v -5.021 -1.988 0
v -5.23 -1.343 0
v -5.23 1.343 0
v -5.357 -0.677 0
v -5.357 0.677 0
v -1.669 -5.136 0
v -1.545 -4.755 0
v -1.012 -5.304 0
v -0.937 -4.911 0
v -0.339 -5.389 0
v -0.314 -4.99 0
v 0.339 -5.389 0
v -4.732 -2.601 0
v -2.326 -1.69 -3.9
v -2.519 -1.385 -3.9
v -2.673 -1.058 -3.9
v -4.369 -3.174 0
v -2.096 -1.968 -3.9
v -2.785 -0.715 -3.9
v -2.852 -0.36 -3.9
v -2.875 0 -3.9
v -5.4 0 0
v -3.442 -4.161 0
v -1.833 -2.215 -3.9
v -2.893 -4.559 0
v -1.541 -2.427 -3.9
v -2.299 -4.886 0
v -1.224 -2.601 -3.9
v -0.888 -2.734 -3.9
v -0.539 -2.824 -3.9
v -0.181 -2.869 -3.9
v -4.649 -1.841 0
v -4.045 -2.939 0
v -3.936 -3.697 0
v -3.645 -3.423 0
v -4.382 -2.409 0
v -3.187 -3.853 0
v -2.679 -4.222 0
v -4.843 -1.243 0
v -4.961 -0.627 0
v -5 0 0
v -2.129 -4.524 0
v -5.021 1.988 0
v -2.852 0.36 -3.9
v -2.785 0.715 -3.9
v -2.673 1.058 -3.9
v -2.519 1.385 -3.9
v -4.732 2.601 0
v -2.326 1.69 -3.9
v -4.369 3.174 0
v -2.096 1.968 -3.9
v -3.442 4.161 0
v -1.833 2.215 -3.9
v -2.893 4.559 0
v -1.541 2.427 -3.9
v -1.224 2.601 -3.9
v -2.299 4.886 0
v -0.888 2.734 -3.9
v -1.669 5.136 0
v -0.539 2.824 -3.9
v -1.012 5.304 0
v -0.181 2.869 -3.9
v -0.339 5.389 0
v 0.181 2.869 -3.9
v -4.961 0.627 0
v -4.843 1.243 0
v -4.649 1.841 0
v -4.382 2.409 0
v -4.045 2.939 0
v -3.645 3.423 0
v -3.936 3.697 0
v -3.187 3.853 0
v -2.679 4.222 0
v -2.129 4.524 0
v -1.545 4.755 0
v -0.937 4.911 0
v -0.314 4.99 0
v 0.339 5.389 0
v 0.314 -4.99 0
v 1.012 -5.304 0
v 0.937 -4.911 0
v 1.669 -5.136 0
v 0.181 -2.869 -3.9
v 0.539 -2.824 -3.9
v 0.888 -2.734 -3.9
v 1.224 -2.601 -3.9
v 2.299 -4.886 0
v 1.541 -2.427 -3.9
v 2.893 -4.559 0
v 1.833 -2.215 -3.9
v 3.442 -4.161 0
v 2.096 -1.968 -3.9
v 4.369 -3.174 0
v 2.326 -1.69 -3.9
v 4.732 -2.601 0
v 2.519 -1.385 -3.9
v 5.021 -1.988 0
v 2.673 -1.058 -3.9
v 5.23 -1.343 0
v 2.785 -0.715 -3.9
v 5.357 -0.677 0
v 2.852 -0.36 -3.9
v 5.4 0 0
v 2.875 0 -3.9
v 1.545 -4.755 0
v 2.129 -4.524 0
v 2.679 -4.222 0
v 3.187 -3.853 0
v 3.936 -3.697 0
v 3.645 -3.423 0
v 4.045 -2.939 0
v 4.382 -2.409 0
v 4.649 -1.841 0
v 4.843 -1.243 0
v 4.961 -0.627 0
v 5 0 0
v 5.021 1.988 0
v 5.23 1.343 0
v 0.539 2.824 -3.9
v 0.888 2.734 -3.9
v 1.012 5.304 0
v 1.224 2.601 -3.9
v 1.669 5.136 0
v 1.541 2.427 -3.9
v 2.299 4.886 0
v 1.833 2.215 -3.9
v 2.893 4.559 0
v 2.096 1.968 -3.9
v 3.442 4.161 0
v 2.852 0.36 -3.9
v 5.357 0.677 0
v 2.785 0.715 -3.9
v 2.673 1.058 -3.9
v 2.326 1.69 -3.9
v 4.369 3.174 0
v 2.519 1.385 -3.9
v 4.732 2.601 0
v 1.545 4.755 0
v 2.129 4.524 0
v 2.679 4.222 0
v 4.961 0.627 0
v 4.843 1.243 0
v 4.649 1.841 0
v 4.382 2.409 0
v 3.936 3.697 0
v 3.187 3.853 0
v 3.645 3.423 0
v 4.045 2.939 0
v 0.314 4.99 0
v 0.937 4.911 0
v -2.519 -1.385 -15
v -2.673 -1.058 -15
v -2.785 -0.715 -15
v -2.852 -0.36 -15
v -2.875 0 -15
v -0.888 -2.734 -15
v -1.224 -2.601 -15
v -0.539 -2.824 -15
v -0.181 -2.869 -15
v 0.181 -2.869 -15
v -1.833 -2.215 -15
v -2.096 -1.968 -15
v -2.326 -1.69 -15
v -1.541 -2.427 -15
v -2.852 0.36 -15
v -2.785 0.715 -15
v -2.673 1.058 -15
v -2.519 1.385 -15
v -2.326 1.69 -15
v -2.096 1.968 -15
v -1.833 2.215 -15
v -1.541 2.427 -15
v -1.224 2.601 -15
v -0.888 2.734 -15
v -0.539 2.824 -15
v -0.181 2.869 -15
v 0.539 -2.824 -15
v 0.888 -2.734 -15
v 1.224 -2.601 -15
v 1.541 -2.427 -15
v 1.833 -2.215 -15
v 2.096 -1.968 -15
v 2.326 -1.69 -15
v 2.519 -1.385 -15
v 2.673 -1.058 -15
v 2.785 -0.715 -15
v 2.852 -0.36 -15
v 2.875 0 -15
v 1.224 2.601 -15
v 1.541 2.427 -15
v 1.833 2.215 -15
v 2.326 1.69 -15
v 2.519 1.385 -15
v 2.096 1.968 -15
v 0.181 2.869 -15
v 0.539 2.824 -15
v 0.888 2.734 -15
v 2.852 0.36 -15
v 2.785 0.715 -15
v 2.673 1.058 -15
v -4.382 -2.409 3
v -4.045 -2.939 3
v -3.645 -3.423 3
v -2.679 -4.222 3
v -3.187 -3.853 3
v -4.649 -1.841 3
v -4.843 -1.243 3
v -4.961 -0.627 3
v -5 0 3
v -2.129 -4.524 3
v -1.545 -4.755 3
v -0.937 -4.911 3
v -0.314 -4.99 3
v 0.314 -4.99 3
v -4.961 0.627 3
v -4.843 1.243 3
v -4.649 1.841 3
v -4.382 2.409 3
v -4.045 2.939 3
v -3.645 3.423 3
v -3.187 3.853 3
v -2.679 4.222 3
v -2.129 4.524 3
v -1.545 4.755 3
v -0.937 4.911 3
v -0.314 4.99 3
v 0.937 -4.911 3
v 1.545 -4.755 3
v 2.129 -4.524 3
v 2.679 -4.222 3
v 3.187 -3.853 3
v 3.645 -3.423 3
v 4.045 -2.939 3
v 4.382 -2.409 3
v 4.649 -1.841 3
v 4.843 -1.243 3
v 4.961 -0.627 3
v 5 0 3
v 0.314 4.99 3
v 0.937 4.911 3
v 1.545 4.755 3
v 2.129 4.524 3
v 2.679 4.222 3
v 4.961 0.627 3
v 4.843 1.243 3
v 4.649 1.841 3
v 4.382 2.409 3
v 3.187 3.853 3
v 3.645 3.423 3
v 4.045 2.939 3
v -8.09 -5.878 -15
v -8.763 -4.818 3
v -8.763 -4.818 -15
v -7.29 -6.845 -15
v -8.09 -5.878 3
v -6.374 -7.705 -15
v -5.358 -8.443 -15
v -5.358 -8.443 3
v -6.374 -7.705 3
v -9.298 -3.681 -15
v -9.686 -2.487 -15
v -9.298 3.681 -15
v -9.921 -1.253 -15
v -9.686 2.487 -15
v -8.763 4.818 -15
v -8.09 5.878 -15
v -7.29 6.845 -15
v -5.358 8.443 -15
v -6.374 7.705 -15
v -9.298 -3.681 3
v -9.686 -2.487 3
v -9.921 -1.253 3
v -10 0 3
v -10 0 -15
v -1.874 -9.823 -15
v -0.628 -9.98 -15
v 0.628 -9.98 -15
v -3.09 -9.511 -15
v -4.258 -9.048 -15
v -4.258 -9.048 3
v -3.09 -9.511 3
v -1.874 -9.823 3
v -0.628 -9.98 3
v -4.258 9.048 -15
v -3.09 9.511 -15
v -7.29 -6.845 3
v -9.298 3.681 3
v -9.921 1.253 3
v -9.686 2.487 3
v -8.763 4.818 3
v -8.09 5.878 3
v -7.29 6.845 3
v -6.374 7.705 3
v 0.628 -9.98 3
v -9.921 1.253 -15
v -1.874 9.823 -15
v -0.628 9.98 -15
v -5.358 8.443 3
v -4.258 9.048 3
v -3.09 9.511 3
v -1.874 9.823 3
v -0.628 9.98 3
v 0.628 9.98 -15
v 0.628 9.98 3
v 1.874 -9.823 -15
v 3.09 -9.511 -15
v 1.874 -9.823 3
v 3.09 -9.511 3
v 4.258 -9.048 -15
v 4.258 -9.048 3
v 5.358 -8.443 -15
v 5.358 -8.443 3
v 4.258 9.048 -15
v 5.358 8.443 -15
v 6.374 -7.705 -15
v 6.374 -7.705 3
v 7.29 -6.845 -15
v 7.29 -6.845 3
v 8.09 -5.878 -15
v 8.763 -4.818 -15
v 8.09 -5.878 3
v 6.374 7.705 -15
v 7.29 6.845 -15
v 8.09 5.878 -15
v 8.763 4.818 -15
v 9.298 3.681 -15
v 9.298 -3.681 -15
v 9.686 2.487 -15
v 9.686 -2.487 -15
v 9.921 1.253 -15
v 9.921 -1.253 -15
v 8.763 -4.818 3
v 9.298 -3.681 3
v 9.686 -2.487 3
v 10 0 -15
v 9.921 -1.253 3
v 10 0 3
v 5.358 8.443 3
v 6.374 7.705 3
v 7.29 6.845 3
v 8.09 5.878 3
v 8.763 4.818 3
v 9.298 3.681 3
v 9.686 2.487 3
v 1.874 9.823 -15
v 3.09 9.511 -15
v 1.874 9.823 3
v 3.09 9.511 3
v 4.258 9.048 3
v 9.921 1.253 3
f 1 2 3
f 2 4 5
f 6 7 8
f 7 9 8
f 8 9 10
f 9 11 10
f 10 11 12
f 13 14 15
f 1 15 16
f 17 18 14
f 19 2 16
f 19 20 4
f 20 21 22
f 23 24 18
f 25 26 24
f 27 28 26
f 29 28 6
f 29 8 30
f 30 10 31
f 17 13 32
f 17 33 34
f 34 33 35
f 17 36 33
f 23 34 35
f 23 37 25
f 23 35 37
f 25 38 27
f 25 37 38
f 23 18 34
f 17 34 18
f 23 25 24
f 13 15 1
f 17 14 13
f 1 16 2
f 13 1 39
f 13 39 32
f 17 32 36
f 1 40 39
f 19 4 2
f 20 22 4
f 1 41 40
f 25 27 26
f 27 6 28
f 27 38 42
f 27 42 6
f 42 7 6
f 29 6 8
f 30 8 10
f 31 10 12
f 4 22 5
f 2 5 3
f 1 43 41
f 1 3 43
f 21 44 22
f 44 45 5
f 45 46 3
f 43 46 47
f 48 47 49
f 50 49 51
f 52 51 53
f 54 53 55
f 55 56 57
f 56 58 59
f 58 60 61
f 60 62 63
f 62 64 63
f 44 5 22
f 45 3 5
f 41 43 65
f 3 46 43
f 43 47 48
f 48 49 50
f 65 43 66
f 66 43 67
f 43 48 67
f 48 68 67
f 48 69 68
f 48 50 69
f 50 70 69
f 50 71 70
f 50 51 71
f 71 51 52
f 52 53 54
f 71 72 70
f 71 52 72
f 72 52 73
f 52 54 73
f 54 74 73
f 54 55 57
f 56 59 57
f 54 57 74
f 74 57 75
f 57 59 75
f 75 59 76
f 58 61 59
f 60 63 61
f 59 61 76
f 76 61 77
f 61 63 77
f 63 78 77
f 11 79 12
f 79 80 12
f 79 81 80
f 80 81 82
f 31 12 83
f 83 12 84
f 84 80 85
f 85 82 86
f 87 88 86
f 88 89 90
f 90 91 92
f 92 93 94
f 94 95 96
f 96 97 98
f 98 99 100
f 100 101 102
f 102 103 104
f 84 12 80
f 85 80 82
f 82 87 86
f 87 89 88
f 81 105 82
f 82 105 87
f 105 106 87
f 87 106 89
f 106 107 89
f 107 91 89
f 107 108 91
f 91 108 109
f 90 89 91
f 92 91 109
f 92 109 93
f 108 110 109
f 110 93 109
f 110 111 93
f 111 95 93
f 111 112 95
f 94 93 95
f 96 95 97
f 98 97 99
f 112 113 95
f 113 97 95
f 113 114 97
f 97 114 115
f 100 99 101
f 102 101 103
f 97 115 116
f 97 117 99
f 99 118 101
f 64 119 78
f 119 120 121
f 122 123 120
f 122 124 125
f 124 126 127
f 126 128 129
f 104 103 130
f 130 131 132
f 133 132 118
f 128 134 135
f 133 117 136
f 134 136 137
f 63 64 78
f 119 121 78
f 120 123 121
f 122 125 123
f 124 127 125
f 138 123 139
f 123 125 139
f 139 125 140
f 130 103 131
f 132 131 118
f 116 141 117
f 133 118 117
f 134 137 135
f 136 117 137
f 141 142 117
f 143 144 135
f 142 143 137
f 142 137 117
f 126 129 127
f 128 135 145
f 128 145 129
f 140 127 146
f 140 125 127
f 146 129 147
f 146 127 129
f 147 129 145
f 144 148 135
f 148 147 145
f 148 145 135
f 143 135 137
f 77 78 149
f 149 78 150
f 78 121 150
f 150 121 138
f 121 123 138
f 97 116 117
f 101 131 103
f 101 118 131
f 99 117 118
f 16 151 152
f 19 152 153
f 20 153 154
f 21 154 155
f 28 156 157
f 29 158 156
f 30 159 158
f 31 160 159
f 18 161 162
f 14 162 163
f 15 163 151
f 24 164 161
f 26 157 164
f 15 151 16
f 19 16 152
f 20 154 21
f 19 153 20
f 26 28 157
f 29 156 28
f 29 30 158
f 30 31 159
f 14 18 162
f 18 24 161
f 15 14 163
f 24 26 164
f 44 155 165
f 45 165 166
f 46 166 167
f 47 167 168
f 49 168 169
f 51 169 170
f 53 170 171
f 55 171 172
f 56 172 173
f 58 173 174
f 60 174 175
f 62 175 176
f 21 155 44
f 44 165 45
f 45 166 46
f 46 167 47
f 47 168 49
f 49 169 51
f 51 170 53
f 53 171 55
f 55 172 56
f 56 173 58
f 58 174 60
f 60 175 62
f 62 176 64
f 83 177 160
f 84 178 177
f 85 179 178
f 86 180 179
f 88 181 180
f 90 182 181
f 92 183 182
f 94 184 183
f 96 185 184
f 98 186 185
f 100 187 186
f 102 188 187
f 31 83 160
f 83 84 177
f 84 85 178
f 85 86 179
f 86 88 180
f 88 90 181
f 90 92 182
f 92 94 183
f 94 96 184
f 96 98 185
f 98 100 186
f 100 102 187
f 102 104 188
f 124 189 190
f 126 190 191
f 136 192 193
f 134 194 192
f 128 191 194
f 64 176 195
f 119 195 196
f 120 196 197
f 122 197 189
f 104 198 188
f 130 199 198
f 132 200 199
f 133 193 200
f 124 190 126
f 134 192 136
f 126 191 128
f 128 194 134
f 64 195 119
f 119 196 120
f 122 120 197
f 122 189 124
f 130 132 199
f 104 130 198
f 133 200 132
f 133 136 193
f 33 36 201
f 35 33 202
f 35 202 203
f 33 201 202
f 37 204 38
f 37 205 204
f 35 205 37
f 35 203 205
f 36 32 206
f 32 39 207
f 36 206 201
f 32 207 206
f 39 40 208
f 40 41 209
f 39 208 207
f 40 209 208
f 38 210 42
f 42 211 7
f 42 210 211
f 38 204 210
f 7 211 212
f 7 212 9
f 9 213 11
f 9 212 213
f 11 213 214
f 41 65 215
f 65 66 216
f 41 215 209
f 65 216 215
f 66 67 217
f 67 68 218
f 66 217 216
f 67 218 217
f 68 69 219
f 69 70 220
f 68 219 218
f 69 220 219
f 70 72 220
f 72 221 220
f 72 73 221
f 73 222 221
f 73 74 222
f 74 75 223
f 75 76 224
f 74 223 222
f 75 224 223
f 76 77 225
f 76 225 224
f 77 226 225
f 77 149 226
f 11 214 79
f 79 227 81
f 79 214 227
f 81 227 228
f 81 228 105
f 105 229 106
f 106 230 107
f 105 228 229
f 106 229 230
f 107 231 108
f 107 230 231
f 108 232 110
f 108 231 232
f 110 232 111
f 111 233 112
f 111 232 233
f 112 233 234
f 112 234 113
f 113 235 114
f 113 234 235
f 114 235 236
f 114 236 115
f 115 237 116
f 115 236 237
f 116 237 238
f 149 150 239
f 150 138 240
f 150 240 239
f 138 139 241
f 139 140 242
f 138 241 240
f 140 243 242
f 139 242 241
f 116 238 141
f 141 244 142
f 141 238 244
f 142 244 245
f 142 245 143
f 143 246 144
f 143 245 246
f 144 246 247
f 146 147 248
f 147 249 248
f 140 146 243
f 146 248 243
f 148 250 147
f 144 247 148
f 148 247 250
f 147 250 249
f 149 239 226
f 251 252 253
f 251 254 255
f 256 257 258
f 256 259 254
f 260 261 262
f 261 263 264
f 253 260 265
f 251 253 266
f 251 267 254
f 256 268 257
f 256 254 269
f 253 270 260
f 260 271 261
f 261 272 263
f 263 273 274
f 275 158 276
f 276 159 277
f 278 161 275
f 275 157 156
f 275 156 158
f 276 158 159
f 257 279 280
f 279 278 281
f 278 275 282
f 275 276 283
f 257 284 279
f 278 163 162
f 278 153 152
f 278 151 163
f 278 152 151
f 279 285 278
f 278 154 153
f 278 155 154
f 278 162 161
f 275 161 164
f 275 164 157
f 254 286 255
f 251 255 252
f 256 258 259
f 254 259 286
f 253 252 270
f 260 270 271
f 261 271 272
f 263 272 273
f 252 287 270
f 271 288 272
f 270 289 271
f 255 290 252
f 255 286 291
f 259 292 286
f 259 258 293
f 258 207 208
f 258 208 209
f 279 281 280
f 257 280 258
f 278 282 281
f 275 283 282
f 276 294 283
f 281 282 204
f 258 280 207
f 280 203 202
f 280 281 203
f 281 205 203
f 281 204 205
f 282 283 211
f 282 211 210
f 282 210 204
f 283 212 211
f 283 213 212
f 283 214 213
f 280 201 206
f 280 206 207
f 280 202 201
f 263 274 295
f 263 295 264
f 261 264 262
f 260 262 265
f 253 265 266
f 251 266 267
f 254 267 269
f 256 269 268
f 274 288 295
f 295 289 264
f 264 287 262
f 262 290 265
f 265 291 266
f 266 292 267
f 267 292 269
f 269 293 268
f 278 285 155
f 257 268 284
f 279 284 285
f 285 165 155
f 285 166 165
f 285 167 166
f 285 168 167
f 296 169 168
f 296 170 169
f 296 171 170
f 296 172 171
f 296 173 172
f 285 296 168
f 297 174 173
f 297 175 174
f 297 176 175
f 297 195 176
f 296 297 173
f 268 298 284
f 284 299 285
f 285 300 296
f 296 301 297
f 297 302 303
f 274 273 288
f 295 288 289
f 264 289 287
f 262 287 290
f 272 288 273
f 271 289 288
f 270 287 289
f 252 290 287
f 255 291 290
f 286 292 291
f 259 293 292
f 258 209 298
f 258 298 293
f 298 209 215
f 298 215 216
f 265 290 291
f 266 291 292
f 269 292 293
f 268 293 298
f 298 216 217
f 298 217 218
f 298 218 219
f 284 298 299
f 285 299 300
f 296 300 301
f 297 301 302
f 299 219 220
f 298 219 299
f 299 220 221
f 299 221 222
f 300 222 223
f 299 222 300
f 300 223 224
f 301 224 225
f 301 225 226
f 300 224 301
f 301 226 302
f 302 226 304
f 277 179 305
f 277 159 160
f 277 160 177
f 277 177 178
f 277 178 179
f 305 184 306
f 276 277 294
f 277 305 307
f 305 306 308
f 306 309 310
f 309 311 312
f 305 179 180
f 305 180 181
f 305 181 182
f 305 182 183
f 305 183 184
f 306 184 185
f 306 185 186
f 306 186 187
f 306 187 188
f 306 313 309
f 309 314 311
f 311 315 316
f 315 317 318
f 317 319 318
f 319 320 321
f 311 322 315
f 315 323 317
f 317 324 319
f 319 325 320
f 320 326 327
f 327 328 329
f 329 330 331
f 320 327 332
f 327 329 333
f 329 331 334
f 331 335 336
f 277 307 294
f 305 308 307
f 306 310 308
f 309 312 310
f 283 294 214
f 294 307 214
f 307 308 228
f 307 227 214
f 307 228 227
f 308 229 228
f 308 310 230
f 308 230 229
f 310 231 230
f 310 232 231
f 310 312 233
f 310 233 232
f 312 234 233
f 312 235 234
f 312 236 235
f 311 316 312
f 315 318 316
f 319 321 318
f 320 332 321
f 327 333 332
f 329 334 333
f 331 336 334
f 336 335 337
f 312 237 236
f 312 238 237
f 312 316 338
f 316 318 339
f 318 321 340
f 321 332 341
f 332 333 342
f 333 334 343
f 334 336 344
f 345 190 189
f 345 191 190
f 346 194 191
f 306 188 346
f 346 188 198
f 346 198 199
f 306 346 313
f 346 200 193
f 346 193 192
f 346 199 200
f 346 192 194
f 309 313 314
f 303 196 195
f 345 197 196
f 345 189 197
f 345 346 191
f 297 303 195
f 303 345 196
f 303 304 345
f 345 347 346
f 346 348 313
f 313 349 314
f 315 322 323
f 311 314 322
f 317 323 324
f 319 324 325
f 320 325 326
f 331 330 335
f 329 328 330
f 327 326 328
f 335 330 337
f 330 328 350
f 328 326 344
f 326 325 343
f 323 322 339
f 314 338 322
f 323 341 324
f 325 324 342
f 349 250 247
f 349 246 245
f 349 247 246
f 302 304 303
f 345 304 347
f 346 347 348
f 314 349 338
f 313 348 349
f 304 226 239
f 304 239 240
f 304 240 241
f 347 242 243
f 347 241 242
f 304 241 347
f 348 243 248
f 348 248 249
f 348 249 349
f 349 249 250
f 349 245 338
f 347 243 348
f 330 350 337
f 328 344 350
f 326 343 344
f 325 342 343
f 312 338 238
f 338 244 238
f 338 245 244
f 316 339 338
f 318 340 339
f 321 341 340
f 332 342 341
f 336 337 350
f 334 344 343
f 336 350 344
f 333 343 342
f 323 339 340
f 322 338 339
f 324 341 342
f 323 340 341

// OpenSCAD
$fn = 50;

difference() {
	union() {
		translate(v = [0, 0, -15.0]) {
			cylinder(h = 18, r = 10.0);
		}
	}
	union() {
		translate(v = [0, 0, 0]) {
			rotate(a = [0, 0, 0]) {
				difference() {
					union() {
						translate(v = [0, 0, -18.0]) {
							cylinder(h = 18, r = 2.6);
						}
						translate(v = [0, 0, -3.9]) {
							cylinder(h = 3.9, r1 = 2.875, r2 = 5.4);
						}
						translate(v = [0, 0, -18.0]) {
							cylinder(h = 18, r = 2.875);
						}
						translate(v = [0, 0, -18.0]) {
							cylinder(h = 18, r = 2.6);
						}
					}
					union();
				}
			}
		}
		#cylinder(h = 3, r = 5.0);
	}
}
